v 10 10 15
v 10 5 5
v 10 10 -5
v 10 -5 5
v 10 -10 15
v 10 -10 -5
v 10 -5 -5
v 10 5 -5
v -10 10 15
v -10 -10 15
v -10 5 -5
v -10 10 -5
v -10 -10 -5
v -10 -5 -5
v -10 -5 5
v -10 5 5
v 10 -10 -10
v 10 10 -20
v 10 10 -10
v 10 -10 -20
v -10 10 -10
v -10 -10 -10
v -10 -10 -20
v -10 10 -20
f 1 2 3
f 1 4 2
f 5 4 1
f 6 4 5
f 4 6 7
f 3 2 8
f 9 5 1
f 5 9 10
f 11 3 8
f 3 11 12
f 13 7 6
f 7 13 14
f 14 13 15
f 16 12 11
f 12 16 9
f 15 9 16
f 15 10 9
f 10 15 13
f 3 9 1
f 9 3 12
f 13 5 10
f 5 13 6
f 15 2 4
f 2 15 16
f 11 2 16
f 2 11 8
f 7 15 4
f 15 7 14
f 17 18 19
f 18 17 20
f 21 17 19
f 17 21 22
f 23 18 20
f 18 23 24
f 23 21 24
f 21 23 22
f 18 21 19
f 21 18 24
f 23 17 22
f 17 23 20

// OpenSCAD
// Base block
module base_block() {
    cube([20, 20, 10], center = true);
}

// L-shaped connector
module l_shaped_connector() {
    difference() {
        cube([20, 20, 20], center = true);
        translate([0, 0, -10])
            cube([20, 10, 20], center = true);
    }
}

// Angled support
module angled_support() {
    polyhedron(
        points = [
            [0, 0, 0],    // Point 0
            [20, 0, 0],   // Point 1
            [20, 20, 0],  // Point 2
            [0, 20, 0],   // Point 3
            [0, 0, 20],   // Point 4
            [20, 0, 20]   // Point 5
        ],
        faces = [
            [0, 1, 4],    // Base triangle
            [1, 5, 4],    // Side triangle
            [1, 2, 5],    // Side triangle
            [2, 3, 5],    // Side triangle
            [3, 0, 4],    // Side triangle
            [0, 3, 2, 1]  // Bottom face
        ]
    );
}

// Assemble the model
module model() {
    // Layer 3: Base block
    translate([0, 0, -15])
        base_block();

    // Layer 2: L-shaped connector
    translate([0, 0, 5])
        l_shaped_connector();

    // Layer 1: Angled support
    translate([0, 0, 25])
        angled_support();
}

// Render the model
model();
